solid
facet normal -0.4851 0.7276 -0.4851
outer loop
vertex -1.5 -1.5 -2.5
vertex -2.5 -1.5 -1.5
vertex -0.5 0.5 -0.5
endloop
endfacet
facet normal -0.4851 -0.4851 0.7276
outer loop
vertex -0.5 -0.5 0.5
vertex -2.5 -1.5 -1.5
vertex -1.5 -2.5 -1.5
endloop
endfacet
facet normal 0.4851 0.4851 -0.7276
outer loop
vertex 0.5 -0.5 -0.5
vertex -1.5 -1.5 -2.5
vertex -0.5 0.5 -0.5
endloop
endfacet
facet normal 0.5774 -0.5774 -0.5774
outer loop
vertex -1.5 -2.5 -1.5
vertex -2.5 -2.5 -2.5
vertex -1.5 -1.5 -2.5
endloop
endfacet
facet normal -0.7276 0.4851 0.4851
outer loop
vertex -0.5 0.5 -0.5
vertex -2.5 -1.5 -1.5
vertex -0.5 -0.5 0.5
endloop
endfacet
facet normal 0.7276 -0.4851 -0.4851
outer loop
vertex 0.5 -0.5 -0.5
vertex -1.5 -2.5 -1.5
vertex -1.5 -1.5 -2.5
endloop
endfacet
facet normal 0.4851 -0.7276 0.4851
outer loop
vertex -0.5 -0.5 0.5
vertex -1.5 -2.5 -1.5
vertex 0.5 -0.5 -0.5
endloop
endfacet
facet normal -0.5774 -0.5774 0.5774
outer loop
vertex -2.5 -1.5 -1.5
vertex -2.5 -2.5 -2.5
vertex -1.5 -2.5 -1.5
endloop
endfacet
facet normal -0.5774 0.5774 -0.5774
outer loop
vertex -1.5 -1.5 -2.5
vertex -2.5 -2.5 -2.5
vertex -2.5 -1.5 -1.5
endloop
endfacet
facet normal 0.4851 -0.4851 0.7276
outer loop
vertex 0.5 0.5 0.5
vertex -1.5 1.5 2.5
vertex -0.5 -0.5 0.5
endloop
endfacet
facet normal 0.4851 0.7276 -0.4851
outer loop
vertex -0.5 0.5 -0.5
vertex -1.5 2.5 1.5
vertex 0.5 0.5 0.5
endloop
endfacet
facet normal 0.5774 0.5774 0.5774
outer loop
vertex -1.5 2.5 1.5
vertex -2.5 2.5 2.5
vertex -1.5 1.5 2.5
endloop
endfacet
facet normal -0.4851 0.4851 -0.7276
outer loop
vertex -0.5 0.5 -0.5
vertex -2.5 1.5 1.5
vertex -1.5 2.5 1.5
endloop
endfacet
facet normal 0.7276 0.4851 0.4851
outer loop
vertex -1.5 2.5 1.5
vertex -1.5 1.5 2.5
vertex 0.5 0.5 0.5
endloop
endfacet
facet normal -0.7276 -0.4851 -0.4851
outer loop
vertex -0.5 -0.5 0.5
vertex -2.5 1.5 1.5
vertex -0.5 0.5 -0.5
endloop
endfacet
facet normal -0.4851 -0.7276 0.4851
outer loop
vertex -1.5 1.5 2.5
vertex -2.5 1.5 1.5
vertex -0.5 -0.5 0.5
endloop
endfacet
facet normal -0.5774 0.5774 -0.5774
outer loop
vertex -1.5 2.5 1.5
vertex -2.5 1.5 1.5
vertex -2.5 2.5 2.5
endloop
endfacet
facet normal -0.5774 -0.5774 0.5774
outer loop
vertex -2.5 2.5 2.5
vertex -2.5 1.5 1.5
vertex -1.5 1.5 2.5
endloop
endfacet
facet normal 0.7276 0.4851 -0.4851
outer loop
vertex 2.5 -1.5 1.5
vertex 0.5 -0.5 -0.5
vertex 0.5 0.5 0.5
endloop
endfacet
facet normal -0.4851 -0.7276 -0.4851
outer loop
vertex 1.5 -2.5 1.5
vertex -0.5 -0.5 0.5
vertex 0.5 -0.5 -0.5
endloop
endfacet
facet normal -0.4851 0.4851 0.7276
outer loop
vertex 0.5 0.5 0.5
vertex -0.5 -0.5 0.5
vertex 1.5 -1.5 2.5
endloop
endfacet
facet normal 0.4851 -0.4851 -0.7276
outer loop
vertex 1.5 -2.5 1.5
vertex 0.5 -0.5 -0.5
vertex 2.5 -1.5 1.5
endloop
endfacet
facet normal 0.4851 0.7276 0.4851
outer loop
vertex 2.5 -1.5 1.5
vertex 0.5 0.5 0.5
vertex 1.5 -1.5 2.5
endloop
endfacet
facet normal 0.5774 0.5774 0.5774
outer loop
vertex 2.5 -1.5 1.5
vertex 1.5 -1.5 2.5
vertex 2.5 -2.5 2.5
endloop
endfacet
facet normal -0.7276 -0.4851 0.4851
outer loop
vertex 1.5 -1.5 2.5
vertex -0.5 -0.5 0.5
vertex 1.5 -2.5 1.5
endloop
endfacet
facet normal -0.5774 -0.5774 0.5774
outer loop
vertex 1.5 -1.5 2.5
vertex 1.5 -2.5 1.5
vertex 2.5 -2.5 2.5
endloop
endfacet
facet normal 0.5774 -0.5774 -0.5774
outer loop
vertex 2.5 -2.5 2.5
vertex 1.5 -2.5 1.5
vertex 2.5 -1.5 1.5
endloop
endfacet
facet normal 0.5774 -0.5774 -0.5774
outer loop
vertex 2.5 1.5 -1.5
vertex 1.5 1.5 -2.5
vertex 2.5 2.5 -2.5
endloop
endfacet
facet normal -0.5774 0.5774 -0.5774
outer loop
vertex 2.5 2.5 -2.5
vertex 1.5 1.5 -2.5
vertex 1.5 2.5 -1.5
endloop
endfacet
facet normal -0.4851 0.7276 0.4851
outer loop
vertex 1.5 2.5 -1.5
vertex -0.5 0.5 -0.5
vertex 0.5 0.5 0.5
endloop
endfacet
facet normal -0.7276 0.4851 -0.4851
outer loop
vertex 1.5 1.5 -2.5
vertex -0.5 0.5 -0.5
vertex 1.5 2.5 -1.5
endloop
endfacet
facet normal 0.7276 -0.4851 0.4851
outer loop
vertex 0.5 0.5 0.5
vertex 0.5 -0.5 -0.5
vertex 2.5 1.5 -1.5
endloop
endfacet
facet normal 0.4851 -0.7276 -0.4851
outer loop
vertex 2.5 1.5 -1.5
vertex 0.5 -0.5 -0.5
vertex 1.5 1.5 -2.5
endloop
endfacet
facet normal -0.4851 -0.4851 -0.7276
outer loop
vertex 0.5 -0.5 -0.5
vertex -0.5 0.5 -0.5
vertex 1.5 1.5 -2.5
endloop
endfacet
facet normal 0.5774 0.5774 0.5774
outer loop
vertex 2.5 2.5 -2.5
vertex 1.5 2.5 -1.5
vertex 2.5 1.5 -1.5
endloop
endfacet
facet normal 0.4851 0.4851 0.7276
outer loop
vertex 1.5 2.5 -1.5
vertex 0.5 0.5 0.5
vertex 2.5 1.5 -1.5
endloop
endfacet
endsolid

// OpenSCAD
// file: common.scad
module layout(rows=1, scale=2) {
    for (child = [0:$children-1]) {
        x = floor(child / rows);
        y = child % rows;
        translate([x*scale, y*scale, 0]) children(child);
    }
}

// Avoid non-triangular faces (i.e. squares on a cube).
// Those can be triangulated in multiple ways, which makes
// comparison against a reference object harder.
module tetra() {
    polyhedron(
        [[0, 0, 0], [0, 1, 1], [1, 0, 1], [1, 1, 0]],
        [[0, 1, 2], [0, 2, 3], [0, 3, 1], [1, 3, 2]]
    );
}

tetra();
// main file
use <common.scad>

// Export to ascii STL, with coordinates rounded to a multiple of 1/64:
// openscad spikes.scad -o - --export-format asciistl | perl -MPOSIX -pe 's/(\d+\.\d+)/POSIX::round($1 \/ 2**-6) * 2**-6/ge' > spikes.stl

for (x = [[-2, -2, -2], [-2, 2, 2], [2, -2, 2], [2, 2, -2]]) hull() {
    rotate([90, 0, 0]) translate([-0.5, -0.5, -0.5]) tetra();
    translate(x) translate([-0.5, -0.5, -0.5]) tetra();
}
